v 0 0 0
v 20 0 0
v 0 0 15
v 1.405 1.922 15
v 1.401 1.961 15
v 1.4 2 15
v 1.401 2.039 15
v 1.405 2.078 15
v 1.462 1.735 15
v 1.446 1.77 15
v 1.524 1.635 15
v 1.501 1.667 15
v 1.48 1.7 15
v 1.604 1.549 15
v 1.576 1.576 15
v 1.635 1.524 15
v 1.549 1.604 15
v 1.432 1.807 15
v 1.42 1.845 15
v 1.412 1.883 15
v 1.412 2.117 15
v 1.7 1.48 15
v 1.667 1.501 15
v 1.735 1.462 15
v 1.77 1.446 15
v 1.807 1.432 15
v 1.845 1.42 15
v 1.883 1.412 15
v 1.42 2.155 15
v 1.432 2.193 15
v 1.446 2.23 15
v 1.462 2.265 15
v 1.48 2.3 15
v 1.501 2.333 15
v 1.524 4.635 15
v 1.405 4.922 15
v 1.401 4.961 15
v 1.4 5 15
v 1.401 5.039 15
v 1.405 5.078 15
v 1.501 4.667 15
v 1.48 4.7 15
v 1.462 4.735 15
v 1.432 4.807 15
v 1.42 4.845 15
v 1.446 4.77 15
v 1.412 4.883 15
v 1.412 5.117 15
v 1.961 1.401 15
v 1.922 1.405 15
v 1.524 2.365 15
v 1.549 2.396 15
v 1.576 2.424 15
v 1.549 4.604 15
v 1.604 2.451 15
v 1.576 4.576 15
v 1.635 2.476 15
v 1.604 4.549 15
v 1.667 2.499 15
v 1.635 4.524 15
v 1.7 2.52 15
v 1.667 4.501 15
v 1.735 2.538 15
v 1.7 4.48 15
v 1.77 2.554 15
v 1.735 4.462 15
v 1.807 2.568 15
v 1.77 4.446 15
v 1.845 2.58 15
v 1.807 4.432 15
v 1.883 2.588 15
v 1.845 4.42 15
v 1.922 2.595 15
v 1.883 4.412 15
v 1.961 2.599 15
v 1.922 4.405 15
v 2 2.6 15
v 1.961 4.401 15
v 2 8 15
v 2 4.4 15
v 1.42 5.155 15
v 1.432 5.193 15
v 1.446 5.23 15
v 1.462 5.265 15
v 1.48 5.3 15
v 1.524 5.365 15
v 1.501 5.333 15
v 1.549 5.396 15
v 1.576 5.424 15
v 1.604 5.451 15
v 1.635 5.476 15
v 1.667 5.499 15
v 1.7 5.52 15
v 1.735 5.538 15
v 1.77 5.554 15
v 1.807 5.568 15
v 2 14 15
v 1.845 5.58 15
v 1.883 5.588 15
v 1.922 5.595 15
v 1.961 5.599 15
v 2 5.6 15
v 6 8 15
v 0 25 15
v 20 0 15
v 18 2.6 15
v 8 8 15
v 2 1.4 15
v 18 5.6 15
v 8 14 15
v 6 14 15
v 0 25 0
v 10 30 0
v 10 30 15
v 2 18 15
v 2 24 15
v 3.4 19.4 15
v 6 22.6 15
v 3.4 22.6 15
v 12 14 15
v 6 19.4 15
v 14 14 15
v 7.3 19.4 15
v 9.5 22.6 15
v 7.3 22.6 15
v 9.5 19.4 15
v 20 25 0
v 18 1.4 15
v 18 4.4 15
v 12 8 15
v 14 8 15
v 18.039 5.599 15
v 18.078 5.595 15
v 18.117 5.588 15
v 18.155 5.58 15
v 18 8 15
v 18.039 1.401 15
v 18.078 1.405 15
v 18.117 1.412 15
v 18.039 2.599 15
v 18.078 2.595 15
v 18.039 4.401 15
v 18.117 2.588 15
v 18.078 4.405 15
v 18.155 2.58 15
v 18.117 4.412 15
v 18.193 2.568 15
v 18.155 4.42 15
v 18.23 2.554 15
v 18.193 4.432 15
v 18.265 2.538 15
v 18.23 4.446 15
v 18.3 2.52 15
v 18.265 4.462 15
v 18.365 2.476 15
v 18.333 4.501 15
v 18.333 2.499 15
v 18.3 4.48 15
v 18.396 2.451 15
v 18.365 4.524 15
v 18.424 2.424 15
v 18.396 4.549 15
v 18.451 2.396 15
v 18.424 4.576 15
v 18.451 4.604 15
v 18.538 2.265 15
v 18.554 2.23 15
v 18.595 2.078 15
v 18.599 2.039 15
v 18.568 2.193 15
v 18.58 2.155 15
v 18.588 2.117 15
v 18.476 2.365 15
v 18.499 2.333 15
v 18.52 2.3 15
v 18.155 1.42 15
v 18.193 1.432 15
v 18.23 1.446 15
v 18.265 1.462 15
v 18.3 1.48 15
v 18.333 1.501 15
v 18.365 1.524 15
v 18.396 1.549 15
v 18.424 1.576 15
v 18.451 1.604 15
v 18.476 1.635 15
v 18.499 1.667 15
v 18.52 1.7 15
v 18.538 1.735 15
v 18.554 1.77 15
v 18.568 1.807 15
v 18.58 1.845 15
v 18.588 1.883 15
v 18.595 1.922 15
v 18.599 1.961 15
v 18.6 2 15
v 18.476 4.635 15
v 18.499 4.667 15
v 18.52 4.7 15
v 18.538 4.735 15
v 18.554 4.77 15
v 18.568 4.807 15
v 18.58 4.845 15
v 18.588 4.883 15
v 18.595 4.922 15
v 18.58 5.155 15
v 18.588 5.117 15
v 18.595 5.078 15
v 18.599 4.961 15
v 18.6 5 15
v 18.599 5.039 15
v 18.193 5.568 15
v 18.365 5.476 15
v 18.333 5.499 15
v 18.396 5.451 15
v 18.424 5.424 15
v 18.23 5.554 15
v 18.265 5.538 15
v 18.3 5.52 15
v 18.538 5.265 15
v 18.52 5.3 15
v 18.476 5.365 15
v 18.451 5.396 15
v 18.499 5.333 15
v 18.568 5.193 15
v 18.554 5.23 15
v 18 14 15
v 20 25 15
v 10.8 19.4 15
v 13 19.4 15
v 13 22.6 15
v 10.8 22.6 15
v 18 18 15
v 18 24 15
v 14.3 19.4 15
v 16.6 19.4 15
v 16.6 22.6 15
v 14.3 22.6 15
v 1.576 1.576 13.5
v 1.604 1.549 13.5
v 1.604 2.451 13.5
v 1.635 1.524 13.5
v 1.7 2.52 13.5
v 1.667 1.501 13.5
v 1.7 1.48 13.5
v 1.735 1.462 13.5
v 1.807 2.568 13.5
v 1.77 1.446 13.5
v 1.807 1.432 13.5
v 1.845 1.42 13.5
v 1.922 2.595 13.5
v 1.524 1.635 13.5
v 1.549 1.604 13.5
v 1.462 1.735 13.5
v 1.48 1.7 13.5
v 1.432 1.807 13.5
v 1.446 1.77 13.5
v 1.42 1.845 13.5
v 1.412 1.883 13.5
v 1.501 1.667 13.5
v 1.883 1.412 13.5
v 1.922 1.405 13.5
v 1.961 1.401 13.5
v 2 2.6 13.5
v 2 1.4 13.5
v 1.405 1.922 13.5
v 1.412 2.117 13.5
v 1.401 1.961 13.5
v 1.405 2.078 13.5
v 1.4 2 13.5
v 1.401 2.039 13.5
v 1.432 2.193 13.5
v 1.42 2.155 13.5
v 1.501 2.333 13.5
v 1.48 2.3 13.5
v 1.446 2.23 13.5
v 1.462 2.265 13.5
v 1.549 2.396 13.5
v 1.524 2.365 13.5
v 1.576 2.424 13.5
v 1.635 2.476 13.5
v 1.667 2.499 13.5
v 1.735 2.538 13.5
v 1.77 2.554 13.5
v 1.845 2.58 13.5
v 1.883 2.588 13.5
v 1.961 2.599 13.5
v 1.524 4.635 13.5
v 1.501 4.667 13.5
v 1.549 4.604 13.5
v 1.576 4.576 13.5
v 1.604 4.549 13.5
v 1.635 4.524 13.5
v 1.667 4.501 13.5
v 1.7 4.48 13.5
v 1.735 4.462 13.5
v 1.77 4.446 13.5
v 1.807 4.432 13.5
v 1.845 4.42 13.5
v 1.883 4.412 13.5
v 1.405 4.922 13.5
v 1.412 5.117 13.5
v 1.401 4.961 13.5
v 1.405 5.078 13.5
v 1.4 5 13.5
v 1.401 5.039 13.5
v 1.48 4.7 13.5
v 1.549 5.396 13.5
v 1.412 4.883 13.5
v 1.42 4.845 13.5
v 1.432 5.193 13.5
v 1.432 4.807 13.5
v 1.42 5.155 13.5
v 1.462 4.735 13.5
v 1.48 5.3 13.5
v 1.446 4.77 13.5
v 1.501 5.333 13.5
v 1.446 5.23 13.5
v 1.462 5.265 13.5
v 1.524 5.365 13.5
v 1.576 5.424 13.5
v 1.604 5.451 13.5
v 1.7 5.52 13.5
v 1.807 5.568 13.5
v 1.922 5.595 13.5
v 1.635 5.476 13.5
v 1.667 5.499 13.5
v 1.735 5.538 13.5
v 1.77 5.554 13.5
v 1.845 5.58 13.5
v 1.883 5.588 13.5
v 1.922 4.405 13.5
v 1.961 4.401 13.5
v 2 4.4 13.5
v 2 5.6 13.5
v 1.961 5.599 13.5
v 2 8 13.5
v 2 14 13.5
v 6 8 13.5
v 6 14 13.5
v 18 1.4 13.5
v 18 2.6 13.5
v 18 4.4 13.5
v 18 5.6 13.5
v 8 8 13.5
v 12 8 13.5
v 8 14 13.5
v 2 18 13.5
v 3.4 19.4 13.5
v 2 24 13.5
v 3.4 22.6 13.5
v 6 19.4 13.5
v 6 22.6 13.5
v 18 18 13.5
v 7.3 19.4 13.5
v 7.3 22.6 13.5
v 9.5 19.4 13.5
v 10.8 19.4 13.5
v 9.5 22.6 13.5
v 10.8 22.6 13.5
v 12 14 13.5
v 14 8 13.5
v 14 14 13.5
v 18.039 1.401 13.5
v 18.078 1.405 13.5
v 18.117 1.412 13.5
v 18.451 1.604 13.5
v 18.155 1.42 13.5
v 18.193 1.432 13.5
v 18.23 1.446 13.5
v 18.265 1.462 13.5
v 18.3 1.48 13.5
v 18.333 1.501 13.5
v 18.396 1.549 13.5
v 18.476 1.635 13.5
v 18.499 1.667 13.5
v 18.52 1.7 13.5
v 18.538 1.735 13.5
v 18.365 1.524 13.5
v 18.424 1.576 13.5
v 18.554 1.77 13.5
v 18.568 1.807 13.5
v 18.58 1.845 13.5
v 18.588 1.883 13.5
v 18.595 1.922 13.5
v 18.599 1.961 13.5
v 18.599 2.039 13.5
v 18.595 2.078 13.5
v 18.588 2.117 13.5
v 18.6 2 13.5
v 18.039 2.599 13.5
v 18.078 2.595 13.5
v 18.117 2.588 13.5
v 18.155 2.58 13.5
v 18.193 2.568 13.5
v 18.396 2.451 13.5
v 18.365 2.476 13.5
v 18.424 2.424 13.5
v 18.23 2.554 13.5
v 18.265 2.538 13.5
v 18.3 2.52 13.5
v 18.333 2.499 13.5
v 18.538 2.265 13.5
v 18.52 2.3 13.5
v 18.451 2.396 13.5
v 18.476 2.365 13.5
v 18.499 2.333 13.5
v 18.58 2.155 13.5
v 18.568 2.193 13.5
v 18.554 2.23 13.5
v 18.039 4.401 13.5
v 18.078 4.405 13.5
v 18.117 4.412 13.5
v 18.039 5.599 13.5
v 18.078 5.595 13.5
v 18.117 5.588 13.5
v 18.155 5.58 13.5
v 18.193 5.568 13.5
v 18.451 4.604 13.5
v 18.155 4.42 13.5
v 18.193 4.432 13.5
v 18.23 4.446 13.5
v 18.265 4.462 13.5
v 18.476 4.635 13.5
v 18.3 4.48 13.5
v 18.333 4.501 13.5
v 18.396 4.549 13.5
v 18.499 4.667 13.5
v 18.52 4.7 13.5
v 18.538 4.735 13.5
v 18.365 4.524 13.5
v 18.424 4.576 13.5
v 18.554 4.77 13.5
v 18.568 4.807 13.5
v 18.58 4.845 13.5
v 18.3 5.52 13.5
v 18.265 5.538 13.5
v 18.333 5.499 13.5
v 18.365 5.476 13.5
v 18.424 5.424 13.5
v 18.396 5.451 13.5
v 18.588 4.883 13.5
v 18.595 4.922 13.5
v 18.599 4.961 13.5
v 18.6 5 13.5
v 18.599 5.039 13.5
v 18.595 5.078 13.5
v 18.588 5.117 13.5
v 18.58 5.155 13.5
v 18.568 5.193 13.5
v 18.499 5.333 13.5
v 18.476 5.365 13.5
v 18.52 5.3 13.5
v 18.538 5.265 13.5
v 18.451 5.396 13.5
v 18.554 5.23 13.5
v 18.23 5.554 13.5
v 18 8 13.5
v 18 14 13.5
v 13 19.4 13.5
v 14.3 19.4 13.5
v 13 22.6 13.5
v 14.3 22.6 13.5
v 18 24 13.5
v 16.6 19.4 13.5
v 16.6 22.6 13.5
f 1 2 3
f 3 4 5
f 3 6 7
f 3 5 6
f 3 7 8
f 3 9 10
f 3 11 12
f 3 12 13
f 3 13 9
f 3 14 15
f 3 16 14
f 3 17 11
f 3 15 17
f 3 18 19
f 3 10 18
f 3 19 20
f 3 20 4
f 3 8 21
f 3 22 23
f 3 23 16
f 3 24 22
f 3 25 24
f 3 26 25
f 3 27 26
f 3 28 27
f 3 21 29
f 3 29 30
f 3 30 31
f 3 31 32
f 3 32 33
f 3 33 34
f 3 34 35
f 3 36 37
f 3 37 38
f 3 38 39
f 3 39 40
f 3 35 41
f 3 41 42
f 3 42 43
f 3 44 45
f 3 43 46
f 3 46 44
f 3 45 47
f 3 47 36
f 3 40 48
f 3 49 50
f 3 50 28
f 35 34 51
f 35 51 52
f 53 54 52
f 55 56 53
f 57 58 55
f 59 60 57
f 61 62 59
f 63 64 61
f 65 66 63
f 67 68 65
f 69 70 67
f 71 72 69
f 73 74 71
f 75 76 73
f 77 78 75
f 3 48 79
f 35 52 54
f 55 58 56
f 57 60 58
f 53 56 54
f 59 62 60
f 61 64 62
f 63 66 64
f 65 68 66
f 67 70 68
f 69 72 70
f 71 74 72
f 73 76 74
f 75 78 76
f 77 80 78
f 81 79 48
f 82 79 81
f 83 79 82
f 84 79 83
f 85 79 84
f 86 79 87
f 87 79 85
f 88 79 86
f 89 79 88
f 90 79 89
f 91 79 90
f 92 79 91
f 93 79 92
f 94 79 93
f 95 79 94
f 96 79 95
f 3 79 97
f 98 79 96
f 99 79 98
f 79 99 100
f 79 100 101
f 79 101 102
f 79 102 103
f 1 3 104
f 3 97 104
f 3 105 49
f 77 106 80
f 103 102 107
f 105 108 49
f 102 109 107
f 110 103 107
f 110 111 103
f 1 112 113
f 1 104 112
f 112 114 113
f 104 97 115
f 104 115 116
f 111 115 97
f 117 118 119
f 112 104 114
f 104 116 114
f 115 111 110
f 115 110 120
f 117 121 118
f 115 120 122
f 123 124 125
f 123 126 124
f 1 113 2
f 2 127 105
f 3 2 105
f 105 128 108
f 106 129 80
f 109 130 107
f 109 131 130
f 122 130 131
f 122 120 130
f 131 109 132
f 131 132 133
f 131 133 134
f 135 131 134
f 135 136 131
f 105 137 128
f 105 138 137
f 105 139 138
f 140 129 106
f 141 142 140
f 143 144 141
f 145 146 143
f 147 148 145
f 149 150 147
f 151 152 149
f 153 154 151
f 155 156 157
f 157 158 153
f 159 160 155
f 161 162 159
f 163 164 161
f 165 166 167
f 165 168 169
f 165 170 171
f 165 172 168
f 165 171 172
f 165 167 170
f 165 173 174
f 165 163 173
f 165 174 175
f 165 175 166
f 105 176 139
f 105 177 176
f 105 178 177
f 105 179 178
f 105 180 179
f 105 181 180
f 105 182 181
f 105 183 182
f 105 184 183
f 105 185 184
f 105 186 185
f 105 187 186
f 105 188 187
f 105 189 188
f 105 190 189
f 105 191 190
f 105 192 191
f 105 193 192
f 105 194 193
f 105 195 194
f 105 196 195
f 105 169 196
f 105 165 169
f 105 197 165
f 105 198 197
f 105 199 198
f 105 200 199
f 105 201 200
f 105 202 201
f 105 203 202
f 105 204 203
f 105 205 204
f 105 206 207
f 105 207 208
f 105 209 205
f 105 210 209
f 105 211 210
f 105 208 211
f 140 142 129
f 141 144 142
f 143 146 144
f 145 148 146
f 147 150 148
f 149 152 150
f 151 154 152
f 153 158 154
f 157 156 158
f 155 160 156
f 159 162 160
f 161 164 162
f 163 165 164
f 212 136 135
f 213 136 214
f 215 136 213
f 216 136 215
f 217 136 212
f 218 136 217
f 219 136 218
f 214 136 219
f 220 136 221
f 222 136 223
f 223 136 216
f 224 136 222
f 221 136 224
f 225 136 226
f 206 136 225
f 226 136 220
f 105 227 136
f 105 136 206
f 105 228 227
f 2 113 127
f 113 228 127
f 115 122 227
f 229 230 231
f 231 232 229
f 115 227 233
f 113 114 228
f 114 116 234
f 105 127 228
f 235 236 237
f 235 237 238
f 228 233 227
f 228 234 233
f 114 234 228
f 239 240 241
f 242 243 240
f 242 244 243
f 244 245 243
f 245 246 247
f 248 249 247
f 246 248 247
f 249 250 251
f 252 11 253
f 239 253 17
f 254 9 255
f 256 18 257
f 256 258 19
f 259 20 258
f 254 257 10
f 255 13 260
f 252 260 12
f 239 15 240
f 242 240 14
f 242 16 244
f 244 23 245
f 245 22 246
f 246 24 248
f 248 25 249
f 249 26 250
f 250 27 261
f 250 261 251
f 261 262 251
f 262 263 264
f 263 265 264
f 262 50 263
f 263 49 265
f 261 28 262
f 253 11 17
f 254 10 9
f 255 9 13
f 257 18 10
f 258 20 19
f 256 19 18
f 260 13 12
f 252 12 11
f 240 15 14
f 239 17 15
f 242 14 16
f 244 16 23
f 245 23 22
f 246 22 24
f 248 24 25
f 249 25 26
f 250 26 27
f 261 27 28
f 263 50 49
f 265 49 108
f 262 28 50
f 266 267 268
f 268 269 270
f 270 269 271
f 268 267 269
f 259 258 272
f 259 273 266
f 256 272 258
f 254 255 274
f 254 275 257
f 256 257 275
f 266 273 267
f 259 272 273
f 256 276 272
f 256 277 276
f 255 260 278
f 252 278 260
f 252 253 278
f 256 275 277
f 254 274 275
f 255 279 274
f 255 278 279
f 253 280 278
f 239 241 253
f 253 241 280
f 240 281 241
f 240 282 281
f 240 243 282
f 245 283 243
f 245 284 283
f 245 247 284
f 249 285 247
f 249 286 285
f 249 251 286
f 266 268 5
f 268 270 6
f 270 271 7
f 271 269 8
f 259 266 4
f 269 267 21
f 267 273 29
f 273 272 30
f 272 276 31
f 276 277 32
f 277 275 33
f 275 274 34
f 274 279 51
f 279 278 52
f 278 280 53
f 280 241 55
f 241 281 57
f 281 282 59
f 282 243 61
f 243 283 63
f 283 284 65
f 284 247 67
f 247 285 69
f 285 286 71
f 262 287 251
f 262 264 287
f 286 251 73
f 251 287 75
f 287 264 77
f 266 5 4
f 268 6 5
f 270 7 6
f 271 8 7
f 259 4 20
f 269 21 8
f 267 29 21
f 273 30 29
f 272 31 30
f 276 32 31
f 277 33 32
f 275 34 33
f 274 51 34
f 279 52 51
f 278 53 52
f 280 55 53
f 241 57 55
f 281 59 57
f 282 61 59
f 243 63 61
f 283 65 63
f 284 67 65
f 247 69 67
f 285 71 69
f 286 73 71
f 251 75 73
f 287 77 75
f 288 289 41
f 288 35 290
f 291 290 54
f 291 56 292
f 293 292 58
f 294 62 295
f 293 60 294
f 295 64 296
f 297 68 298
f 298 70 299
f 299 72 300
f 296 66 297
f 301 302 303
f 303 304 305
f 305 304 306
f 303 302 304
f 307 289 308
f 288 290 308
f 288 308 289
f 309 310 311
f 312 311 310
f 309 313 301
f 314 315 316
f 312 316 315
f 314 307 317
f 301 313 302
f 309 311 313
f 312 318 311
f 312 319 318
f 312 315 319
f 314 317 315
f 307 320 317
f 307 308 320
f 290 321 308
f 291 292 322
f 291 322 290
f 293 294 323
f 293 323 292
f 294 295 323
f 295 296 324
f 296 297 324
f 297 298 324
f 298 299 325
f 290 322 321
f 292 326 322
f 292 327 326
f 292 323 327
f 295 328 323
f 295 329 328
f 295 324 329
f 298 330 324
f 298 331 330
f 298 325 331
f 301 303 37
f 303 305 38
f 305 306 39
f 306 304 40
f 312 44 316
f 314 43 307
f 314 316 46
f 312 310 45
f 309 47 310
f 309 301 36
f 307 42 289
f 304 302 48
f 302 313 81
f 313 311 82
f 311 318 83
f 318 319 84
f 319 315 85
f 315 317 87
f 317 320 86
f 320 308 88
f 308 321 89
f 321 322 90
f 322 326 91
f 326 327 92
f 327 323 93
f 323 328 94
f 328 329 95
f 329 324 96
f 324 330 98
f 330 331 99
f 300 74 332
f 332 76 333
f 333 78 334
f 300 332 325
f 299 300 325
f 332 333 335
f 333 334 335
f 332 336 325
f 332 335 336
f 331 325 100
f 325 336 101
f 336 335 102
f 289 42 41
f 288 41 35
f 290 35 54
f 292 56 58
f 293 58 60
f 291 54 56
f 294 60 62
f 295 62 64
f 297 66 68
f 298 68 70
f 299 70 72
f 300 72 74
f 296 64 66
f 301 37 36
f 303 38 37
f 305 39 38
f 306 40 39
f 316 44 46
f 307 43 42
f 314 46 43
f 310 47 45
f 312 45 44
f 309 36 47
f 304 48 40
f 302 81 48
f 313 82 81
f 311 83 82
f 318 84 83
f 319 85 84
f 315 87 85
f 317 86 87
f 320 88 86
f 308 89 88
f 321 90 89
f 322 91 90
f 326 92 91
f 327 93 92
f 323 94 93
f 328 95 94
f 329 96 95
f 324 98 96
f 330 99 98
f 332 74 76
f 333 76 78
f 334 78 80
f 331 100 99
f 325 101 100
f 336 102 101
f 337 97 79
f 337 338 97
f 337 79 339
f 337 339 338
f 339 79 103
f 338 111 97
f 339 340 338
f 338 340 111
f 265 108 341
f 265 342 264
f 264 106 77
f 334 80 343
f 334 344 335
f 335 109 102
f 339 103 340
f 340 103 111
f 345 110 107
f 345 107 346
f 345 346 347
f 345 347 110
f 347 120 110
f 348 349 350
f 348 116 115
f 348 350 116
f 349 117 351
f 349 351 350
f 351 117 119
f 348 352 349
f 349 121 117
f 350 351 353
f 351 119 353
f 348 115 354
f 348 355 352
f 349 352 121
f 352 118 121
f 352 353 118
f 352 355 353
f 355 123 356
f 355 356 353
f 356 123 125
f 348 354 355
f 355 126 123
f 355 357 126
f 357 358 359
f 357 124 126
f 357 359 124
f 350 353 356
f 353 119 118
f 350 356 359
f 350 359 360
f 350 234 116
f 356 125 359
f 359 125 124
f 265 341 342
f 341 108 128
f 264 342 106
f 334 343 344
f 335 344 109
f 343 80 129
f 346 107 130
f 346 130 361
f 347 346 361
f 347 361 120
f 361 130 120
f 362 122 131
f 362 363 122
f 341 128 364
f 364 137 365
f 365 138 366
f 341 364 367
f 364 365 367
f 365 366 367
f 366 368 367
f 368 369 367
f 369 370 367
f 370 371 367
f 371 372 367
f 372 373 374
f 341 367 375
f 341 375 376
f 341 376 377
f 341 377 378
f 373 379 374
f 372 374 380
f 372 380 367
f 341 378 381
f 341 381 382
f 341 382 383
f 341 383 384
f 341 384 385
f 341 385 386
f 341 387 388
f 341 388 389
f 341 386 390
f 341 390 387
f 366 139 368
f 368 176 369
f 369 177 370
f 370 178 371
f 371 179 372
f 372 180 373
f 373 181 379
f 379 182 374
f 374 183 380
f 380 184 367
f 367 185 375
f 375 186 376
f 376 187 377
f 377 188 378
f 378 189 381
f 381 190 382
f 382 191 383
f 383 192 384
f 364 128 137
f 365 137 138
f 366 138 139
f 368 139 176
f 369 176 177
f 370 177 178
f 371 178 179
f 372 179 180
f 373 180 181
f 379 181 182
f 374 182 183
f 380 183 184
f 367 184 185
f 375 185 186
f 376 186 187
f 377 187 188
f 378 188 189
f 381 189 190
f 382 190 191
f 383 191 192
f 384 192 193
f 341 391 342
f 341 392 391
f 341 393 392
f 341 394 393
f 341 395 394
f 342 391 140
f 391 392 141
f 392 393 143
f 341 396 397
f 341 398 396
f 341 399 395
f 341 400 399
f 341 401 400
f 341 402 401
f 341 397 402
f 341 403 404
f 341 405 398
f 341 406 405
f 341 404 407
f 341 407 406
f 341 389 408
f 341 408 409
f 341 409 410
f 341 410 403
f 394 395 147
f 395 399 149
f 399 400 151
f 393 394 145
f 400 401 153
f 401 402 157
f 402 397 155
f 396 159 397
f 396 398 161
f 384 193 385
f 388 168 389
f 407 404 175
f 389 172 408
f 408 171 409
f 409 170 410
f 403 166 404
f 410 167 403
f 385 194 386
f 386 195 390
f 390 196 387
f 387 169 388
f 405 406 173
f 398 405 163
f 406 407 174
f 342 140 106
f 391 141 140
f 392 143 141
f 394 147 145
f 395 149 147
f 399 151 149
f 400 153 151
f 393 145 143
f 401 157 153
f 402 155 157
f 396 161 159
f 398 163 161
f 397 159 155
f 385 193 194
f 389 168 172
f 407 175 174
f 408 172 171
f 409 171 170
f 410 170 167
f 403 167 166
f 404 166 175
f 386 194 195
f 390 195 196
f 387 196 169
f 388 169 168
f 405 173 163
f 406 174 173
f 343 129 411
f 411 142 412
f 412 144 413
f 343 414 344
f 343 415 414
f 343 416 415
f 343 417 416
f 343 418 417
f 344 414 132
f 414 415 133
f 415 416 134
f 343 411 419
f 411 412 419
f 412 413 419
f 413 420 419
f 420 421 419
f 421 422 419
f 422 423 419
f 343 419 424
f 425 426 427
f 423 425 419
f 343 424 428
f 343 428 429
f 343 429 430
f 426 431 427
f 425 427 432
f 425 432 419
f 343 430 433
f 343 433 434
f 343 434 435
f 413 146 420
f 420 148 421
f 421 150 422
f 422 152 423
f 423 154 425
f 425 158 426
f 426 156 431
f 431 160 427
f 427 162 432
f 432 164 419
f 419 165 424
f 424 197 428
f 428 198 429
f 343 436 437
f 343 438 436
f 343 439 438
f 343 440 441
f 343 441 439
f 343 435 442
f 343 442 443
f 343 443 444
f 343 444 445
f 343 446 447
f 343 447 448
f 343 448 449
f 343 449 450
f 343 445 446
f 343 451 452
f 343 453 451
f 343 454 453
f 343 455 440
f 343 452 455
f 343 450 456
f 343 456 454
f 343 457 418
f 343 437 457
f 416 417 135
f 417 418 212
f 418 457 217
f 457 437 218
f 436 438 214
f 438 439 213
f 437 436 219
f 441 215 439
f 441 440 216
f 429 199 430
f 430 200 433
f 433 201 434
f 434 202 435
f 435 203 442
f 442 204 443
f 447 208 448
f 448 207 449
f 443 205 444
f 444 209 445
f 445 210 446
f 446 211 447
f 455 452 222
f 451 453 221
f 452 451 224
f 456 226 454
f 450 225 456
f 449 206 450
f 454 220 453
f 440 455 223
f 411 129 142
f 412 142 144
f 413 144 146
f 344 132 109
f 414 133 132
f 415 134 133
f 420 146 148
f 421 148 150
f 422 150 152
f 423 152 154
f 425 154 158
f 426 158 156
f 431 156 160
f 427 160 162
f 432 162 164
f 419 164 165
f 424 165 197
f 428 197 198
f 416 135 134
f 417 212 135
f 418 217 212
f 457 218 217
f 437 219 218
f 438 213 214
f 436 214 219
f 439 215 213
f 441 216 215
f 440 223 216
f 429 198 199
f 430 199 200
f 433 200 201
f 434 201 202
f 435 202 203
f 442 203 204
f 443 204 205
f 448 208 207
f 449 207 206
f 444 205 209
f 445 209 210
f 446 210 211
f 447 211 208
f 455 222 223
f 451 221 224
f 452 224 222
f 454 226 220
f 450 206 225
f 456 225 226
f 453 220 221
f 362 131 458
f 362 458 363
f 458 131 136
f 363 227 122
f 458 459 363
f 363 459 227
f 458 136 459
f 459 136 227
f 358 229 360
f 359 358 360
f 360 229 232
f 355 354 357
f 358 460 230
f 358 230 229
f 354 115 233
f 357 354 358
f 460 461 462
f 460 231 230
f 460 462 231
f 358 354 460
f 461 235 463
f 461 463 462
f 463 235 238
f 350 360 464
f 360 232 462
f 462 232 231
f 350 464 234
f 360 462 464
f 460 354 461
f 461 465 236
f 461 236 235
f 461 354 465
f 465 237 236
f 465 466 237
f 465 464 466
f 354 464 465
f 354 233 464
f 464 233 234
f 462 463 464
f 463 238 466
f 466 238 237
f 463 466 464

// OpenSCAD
// Building facade miniature for board games.
// Millimetres. X=width, Y=height, Z=depth.
// Print flat at Z=0; straight base at Y=0; front at Z=15.
// All recesses are blind and 1.5 mm deep. This is a solid piece.
$fn=96;
depth=15;
recess=1.5;
module rect(x,y,w,h) { translate([x,y]) square([w,h]); }
module disc(x,y,r) { translate([x,y]) circle(r=r); }
module line(a,b,w=1.4) {
    hull() { translate(a) circle(d=w); translate(b) circle(d=w); }
}
module frame(x,y,w,h,t=1.4) {
    difference() { rect(x,y,w,h); rect(x+t,y+t,w-2*t,h-2*t); }
}
module gear(x,y,r=6,inner=2.4) {
    translate([x,y]) difference() {
        polygon([for(i=[0:(r<4?15:23)]) let(n=(r<4?16:24),a=(i+1)*360/n,rr=(i%4<2?r:r-min(1.5,r*0.21))) [rr*cos(a),rr*sin(a)]]);
        circle(r=inner);
    }
}
module car(x,y,w=14,h=5) {
    translate([x,y]) union() {
        polygon([[0,0.8],[0,h*0.48],[w*0.2,h*0.48],
                 [w*0.35,h],[w*0.67,h],[w*0.82,h*0.48],
                 [w,h*0.35],[w,0.8]]);
        disc(w*0.23,0.8,1.3); disc(w*0.77,0.8,1.3);
    }
}
module recycling(x,y,r=6) {
    translate([x,y]) for(a=[0,120,240]) rotate(a) {
        line([-3.8,3.2],[1.2,3.2],1.6);
        polygon([[1.2,1.7],[4.2,3.2],[1.2,4.7]]);
    }
}
module cutface() { translate([0,0,depth-recess]) linear_extrude(height=recess+0.5) facade(); }
// All details are recessed into the same solid facade.
difference() {
    linear_extrude(height=depth) outline();
    cutface();
}


module outline() { polygon([[0,0],[20,0],[20,25],[10,30],[0,25]]); }
module facade() {
    line([2,2],[18,2],1.2); line([2,5],[18,5],1.2);
    for(x=[2,8,14]) rect(x,8,4,6);
    frame(2,18,16,6,1.4);
    for(x=[6,9.5,13]) rect(x,19.4,1.3,3.2);
}
